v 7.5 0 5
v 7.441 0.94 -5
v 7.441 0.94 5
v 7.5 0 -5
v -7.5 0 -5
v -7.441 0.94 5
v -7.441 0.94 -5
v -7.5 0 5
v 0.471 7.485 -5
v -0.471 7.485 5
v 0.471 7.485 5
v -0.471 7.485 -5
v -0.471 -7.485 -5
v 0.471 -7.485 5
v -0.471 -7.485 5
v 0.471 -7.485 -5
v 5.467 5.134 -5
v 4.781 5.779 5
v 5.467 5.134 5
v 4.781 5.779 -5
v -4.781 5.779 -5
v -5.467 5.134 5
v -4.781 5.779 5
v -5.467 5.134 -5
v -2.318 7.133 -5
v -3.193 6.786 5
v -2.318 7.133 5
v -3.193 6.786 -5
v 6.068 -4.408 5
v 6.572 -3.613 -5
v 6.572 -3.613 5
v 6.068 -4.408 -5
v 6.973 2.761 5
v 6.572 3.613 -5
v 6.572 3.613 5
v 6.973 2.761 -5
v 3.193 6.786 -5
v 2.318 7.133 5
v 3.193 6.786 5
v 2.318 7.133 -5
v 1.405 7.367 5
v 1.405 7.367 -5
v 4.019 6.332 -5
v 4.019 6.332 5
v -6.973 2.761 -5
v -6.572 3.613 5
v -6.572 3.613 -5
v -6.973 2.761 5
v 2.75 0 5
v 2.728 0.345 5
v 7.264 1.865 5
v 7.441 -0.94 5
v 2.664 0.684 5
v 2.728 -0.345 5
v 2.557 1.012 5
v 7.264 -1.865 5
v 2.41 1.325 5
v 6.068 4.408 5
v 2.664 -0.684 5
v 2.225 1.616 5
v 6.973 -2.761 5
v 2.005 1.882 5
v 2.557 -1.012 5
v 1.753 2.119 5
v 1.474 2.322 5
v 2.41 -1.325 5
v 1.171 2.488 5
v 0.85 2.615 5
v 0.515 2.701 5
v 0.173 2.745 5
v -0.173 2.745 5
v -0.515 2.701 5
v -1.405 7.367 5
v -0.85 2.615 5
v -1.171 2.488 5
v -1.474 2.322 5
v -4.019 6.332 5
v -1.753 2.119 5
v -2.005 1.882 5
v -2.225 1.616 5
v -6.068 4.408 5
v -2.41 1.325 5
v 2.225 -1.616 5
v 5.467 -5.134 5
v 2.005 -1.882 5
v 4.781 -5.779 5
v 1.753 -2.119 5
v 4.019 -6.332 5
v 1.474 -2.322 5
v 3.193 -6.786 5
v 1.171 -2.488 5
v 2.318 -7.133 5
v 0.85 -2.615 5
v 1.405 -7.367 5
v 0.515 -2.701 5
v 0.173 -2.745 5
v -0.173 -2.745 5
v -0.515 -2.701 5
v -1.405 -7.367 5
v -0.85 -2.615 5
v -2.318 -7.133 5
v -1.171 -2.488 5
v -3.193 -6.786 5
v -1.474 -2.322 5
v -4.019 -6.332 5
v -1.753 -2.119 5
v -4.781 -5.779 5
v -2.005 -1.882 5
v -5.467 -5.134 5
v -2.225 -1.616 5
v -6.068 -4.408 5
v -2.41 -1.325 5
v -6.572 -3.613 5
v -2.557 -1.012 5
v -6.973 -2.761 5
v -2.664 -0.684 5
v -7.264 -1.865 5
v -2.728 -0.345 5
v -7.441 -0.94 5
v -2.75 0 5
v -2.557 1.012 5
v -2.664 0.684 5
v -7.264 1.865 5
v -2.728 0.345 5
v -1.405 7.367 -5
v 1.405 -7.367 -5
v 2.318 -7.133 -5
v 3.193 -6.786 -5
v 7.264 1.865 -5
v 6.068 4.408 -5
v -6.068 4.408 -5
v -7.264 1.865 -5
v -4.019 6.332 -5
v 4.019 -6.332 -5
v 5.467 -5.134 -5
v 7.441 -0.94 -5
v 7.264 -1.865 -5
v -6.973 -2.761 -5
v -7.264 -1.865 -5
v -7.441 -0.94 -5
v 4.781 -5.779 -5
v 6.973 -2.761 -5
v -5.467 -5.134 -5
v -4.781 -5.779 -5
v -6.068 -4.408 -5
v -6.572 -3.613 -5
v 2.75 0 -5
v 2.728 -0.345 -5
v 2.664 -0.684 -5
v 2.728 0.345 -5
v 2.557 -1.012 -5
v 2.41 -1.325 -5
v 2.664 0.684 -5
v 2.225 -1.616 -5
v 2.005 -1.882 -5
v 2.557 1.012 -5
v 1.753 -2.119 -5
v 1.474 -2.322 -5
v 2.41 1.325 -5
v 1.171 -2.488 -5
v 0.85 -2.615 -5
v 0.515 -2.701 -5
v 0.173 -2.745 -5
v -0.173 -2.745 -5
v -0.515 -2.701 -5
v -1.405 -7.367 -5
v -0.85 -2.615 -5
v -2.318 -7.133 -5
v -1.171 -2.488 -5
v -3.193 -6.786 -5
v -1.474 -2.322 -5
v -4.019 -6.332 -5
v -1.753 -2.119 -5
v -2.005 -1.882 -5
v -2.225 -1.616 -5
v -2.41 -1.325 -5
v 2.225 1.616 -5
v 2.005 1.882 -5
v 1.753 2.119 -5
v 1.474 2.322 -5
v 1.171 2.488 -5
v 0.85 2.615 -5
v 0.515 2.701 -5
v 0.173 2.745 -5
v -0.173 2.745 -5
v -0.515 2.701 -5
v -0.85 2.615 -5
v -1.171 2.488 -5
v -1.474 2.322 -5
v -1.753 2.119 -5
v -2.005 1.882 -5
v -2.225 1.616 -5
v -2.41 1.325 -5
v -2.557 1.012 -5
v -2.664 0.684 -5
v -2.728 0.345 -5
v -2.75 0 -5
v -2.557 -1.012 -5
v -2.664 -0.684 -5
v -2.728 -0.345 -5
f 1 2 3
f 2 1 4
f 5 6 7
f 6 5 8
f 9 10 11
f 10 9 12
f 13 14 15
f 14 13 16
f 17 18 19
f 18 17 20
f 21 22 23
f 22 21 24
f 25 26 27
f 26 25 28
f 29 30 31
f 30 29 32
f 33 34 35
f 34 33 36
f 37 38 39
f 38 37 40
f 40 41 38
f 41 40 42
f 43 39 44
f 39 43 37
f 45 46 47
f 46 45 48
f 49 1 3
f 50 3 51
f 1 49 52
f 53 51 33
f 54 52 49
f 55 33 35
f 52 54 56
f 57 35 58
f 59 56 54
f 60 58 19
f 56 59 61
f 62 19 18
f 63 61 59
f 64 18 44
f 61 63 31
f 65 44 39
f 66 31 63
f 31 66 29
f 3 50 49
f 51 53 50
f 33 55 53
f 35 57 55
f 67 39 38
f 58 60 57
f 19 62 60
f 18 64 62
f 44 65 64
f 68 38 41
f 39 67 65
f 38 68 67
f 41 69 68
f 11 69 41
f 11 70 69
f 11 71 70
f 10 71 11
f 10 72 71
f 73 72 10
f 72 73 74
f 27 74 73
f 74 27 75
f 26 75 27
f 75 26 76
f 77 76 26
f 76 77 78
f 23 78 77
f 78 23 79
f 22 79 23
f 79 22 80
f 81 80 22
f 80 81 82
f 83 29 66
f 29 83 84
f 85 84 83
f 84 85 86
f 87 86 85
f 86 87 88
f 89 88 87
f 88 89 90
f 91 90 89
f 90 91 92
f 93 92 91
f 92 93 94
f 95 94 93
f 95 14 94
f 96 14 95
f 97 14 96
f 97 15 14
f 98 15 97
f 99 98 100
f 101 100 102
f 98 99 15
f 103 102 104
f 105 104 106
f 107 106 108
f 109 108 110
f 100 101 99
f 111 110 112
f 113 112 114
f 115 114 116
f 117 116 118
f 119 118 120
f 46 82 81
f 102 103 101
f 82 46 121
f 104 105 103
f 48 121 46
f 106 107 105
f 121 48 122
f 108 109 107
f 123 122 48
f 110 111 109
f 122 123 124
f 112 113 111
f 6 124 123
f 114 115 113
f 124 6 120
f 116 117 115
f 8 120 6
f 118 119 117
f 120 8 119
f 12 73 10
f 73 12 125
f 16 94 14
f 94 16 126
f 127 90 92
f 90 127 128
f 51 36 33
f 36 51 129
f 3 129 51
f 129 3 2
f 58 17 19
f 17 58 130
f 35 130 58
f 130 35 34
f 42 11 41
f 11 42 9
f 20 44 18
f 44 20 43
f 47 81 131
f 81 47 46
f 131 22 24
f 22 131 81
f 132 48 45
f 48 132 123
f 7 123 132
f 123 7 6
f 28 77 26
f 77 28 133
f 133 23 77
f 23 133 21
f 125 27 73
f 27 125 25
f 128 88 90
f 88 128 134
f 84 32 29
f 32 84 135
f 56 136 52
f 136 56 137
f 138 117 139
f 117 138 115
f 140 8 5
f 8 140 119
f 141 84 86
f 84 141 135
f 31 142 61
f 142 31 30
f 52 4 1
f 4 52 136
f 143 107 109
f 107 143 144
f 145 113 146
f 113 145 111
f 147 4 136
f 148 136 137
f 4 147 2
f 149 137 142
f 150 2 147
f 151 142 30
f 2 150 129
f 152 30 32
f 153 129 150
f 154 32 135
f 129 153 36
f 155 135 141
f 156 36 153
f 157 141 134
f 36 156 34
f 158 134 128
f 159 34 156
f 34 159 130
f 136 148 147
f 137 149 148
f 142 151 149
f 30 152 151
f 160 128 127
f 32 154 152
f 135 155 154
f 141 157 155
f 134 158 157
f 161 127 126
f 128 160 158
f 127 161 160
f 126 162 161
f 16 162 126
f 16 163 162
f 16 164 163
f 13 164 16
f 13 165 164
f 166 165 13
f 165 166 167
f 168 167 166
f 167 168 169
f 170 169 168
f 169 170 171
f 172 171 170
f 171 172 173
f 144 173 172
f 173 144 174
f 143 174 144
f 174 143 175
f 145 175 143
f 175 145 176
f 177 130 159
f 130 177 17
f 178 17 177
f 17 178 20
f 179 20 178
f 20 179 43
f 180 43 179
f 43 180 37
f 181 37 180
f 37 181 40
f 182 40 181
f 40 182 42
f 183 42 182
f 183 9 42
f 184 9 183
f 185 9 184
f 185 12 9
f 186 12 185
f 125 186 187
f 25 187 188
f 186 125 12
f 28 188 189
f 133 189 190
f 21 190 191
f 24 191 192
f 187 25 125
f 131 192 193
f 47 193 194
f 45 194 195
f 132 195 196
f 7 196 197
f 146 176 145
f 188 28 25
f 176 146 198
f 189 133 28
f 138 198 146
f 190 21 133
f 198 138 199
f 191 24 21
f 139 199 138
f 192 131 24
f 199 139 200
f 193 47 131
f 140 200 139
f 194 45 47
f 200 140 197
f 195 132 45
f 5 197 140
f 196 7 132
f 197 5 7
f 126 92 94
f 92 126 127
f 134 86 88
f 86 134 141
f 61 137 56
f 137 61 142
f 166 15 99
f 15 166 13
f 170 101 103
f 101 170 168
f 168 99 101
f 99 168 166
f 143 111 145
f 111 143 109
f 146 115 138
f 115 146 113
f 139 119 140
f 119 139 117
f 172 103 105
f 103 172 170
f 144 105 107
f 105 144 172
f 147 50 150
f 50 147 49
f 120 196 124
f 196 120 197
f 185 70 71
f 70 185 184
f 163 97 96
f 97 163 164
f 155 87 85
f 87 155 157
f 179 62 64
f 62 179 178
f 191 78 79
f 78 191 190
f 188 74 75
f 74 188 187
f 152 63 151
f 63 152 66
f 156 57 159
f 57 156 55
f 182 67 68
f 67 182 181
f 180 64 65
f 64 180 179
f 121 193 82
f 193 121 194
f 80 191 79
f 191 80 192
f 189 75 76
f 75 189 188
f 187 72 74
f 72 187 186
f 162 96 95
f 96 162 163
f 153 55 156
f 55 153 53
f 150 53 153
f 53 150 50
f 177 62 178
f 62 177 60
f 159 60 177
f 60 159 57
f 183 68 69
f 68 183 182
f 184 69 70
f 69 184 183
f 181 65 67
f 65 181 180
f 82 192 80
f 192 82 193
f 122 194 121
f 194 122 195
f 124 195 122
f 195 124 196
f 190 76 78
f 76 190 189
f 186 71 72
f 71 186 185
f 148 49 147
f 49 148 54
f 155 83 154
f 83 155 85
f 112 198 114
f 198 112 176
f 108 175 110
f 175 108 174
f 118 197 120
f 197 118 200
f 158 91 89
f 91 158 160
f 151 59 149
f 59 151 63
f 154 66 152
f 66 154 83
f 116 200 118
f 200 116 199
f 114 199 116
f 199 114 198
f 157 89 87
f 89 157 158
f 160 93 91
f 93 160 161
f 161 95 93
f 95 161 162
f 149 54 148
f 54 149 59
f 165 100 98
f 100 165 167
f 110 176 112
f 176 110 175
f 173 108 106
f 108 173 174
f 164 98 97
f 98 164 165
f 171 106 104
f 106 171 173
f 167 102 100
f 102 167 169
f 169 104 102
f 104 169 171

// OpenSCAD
$fn = 50;


difference() {
	union() {
		translate(v = [0, 0, -5.0000000000]) {
			cylinder(h = 10, r = 7.5000000000);
		}
	}
	union() {
		translate(v = [0, 0, -100.0000000000]) {
			cylinder(h = 200, r = 2.7500000000);
		}
	}
}
